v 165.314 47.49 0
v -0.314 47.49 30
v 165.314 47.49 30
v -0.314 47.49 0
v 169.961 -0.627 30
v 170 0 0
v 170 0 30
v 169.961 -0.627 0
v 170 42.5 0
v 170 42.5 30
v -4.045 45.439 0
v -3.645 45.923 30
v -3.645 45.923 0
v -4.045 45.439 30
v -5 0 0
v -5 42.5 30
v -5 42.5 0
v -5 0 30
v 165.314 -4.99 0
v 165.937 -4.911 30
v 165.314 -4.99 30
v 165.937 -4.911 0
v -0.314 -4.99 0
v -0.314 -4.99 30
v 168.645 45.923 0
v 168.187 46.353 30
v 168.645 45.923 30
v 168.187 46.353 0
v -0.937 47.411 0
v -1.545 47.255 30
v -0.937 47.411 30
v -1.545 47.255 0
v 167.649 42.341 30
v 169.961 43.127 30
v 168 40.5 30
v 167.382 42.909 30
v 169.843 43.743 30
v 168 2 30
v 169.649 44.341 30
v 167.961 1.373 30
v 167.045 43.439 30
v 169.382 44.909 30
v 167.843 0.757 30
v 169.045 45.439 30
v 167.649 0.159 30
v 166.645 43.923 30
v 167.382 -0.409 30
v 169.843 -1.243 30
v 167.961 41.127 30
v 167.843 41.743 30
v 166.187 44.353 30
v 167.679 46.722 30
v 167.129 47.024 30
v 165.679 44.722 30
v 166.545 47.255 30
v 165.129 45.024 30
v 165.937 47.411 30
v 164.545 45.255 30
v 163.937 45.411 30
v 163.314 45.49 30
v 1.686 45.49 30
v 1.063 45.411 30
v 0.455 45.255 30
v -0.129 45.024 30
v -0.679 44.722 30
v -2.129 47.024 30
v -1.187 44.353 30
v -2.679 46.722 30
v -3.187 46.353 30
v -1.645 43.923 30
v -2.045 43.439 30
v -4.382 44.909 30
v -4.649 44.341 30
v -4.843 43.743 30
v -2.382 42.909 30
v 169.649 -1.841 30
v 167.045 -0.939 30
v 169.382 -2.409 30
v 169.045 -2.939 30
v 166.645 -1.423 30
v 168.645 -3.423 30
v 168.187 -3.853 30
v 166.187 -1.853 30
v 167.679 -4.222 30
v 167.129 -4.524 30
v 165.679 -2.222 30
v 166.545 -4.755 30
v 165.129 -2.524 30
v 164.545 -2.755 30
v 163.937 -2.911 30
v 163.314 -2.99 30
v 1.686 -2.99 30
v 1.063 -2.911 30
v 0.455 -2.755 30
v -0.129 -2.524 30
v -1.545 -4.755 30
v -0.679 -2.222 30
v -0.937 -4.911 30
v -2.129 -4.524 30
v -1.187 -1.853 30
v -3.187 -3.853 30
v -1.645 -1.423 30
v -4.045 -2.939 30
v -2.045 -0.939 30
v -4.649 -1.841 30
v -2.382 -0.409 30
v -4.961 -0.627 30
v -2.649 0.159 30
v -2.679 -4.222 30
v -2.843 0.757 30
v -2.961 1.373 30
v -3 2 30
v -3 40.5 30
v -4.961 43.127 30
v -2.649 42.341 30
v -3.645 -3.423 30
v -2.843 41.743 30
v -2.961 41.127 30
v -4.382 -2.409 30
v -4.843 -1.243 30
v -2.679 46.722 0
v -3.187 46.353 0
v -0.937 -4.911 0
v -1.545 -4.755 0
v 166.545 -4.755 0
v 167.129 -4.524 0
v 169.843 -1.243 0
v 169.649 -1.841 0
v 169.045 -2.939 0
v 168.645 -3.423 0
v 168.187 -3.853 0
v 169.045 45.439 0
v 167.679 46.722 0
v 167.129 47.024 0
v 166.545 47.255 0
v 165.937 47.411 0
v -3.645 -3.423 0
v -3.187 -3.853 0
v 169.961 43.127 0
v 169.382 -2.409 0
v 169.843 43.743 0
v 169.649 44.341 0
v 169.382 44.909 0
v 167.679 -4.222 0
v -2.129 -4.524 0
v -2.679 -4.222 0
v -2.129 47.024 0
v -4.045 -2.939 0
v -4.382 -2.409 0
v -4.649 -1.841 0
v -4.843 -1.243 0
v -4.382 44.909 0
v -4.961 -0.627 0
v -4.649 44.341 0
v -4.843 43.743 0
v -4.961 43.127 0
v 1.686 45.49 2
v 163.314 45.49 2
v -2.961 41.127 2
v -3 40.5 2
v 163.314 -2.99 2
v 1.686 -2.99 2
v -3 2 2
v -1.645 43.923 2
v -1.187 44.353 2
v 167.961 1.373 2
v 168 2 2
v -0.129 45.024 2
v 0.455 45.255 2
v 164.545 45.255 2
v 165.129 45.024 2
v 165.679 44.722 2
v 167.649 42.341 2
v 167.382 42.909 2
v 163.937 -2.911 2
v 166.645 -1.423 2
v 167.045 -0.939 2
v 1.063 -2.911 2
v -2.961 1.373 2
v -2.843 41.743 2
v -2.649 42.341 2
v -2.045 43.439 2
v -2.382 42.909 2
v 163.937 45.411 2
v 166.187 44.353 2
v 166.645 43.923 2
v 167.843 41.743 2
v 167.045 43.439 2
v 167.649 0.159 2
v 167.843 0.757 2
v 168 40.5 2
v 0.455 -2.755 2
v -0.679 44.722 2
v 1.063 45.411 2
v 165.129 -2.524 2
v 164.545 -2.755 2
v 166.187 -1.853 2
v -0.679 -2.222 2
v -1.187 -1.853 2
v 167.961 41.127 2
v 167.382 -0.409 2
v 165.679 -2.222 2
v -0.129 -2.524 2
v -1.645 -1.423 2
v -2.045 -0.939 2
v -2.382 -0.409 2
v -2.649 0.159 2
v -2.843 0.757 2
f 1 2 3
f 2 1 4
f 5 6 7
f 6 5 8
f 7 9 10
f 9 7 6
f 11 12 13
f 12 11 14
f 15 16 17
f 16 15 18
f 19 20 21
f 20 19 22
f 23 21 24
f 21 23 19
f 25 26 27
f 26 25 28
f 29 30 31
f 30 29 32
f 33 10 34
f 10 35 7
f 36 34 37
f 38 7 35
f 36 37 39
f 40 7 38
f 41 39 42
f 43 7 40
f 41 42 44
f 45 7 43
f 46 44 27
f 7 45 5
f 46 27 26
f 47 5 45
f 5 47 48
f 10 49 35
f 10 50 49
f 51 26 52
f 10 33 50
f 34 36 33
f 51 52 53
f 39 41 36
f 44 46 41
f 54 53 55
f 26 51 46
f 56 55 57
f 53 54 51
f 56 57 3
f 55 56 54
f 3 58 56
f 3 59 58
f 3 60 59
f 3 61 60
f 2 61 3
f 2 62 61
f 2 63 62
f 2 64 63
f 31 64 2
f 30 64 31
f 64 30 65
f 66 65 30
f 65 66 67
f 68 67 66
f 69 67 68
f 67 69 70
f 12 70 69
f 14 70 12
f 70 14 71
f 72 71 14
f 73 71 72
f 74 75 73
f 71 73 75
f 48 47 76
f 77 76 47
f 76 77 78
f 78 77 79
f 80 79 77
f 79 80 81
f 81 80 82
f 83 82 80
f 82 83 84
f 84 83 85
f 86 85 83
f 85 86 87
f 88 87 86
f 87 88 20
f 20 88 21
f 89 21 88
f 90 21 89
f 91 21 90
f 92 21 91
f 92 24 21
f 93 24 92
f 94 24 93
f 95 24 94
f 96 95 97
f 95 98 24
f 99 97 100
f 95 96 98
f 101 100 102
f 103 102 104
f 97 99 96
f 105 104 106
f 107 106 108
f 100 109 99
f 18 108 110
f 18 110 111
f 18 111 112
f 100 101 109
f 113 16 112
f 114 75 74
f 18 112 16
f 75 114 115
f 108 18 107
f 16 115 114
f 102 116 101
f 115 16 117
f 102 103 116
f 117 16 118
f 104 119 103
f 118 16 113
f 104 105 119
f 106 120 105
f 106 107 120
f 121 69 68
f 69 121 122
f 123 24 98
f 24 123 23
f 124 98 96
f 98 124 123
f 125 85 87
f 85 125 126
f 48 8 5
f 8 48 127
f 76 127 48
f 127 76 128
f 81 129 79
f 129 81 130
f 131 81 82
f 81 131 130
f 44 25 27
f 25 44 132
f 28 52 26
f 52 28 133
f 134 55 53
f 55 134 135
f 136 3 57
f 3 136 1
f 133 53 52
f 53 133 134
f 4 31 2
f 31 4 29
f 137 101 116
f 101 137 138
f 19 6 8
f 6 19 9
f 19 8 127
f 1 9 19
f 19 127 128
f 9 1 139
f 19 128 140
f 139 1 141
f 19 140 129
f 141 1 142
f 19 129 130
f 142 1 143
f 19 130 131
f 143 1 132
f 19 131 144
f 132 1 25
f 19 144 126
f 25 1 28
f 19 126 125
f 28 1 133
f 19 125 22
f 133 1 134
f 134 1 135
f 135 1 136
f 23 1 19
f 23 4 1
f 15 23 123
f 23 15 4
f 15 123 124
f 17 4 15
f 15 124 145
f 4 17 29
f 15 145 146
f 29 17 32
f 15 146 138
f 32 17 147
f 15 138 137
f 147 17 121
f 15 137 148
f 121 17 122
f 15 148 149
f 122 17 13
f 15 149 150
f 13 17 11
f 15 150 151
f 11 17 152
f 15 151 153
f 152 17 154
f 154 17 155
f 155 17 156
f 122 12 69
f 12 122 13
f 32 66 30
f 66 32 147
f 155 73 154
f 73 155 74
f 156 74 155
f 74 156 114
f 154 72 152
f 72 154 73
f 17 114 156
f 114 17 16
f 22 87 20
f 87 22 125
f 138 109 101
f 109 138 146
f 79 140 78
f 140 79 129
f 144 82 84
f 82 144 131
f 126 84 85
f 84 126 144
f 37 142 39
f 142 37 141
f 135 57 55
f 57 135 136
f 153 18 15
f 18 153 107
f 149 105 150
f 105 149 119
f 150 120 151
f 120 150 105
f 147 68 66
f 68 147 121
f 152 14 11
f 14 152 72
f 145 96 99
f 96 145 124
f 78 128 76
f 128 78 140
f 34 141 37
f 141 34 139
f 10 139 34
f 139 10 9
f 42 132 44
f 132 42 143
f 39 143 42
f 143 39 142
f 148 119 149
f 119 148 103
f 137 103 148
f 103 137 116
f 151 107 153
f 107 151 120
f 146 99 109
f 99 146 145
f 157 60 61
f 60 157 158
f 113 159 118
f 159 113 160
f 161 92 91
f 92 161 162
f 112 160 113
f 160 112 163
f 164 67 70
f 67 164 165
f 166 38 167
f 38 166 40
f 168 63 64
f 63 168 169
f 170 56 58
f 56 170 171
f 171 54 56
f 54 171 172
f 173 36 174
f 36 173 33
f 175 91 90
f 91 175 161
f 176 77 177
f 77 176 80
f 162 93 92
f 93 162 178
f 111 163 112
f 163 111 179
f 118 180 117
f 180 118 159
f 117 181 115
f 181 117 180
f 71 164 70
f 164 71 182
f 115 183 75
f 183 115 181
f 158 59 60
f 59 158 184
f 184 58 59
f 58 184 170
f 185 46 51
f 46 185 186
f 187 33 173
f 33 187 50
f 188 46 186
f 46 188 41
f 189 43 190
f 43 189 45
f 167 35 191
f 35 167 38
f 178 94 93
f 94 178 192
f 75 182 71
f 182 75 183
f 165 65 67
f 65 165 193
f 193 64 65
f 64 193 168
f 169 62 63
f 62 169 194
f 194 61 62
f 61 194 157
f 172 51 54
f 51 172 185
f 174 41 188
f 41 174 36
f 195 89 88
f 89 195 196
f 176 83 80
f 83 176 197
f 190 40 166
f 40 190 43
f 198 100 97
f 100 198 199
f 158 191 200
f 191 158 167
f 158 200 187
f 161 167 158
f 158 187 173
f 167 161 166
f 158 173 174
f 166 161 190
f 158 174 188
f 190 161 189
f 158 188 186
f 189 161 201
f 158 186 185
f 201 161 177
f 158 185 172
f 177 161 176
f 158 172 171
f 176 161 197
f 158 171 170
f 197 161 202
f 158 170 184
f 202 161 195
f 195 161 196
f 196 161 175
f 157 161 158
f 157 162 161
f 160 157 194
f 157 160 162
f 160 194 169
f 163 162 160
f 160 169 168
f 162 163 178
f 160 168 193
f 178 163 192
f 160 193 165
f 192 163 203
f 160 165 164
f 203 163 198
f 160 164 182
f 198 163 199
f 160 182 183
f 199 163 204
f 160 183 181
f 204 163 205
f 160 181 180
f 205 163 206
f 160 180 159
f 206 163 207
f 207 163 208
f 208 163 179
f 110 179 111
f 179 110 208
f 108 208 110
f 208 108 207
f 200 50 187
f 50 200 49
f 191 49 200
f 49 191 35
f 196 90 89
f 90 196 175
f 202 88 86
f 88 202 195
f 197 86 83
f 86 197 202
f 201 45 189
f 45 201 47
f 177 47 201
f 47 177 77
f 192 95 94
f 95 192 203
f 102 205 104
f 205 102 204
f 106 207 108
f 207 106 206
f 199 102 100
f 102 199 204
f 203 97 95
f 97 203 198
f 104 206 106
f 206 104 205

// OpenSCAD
$fn=50;

difference() {
        minkowski() {
            cube([165,42.5,20]);
            cylinder(h=10, d=10);
        };
        translate([2,2,2])
            minkowski() {
                cube([161,38.5,20]);
                cylinder(h=10, d=10);
            };
}        
